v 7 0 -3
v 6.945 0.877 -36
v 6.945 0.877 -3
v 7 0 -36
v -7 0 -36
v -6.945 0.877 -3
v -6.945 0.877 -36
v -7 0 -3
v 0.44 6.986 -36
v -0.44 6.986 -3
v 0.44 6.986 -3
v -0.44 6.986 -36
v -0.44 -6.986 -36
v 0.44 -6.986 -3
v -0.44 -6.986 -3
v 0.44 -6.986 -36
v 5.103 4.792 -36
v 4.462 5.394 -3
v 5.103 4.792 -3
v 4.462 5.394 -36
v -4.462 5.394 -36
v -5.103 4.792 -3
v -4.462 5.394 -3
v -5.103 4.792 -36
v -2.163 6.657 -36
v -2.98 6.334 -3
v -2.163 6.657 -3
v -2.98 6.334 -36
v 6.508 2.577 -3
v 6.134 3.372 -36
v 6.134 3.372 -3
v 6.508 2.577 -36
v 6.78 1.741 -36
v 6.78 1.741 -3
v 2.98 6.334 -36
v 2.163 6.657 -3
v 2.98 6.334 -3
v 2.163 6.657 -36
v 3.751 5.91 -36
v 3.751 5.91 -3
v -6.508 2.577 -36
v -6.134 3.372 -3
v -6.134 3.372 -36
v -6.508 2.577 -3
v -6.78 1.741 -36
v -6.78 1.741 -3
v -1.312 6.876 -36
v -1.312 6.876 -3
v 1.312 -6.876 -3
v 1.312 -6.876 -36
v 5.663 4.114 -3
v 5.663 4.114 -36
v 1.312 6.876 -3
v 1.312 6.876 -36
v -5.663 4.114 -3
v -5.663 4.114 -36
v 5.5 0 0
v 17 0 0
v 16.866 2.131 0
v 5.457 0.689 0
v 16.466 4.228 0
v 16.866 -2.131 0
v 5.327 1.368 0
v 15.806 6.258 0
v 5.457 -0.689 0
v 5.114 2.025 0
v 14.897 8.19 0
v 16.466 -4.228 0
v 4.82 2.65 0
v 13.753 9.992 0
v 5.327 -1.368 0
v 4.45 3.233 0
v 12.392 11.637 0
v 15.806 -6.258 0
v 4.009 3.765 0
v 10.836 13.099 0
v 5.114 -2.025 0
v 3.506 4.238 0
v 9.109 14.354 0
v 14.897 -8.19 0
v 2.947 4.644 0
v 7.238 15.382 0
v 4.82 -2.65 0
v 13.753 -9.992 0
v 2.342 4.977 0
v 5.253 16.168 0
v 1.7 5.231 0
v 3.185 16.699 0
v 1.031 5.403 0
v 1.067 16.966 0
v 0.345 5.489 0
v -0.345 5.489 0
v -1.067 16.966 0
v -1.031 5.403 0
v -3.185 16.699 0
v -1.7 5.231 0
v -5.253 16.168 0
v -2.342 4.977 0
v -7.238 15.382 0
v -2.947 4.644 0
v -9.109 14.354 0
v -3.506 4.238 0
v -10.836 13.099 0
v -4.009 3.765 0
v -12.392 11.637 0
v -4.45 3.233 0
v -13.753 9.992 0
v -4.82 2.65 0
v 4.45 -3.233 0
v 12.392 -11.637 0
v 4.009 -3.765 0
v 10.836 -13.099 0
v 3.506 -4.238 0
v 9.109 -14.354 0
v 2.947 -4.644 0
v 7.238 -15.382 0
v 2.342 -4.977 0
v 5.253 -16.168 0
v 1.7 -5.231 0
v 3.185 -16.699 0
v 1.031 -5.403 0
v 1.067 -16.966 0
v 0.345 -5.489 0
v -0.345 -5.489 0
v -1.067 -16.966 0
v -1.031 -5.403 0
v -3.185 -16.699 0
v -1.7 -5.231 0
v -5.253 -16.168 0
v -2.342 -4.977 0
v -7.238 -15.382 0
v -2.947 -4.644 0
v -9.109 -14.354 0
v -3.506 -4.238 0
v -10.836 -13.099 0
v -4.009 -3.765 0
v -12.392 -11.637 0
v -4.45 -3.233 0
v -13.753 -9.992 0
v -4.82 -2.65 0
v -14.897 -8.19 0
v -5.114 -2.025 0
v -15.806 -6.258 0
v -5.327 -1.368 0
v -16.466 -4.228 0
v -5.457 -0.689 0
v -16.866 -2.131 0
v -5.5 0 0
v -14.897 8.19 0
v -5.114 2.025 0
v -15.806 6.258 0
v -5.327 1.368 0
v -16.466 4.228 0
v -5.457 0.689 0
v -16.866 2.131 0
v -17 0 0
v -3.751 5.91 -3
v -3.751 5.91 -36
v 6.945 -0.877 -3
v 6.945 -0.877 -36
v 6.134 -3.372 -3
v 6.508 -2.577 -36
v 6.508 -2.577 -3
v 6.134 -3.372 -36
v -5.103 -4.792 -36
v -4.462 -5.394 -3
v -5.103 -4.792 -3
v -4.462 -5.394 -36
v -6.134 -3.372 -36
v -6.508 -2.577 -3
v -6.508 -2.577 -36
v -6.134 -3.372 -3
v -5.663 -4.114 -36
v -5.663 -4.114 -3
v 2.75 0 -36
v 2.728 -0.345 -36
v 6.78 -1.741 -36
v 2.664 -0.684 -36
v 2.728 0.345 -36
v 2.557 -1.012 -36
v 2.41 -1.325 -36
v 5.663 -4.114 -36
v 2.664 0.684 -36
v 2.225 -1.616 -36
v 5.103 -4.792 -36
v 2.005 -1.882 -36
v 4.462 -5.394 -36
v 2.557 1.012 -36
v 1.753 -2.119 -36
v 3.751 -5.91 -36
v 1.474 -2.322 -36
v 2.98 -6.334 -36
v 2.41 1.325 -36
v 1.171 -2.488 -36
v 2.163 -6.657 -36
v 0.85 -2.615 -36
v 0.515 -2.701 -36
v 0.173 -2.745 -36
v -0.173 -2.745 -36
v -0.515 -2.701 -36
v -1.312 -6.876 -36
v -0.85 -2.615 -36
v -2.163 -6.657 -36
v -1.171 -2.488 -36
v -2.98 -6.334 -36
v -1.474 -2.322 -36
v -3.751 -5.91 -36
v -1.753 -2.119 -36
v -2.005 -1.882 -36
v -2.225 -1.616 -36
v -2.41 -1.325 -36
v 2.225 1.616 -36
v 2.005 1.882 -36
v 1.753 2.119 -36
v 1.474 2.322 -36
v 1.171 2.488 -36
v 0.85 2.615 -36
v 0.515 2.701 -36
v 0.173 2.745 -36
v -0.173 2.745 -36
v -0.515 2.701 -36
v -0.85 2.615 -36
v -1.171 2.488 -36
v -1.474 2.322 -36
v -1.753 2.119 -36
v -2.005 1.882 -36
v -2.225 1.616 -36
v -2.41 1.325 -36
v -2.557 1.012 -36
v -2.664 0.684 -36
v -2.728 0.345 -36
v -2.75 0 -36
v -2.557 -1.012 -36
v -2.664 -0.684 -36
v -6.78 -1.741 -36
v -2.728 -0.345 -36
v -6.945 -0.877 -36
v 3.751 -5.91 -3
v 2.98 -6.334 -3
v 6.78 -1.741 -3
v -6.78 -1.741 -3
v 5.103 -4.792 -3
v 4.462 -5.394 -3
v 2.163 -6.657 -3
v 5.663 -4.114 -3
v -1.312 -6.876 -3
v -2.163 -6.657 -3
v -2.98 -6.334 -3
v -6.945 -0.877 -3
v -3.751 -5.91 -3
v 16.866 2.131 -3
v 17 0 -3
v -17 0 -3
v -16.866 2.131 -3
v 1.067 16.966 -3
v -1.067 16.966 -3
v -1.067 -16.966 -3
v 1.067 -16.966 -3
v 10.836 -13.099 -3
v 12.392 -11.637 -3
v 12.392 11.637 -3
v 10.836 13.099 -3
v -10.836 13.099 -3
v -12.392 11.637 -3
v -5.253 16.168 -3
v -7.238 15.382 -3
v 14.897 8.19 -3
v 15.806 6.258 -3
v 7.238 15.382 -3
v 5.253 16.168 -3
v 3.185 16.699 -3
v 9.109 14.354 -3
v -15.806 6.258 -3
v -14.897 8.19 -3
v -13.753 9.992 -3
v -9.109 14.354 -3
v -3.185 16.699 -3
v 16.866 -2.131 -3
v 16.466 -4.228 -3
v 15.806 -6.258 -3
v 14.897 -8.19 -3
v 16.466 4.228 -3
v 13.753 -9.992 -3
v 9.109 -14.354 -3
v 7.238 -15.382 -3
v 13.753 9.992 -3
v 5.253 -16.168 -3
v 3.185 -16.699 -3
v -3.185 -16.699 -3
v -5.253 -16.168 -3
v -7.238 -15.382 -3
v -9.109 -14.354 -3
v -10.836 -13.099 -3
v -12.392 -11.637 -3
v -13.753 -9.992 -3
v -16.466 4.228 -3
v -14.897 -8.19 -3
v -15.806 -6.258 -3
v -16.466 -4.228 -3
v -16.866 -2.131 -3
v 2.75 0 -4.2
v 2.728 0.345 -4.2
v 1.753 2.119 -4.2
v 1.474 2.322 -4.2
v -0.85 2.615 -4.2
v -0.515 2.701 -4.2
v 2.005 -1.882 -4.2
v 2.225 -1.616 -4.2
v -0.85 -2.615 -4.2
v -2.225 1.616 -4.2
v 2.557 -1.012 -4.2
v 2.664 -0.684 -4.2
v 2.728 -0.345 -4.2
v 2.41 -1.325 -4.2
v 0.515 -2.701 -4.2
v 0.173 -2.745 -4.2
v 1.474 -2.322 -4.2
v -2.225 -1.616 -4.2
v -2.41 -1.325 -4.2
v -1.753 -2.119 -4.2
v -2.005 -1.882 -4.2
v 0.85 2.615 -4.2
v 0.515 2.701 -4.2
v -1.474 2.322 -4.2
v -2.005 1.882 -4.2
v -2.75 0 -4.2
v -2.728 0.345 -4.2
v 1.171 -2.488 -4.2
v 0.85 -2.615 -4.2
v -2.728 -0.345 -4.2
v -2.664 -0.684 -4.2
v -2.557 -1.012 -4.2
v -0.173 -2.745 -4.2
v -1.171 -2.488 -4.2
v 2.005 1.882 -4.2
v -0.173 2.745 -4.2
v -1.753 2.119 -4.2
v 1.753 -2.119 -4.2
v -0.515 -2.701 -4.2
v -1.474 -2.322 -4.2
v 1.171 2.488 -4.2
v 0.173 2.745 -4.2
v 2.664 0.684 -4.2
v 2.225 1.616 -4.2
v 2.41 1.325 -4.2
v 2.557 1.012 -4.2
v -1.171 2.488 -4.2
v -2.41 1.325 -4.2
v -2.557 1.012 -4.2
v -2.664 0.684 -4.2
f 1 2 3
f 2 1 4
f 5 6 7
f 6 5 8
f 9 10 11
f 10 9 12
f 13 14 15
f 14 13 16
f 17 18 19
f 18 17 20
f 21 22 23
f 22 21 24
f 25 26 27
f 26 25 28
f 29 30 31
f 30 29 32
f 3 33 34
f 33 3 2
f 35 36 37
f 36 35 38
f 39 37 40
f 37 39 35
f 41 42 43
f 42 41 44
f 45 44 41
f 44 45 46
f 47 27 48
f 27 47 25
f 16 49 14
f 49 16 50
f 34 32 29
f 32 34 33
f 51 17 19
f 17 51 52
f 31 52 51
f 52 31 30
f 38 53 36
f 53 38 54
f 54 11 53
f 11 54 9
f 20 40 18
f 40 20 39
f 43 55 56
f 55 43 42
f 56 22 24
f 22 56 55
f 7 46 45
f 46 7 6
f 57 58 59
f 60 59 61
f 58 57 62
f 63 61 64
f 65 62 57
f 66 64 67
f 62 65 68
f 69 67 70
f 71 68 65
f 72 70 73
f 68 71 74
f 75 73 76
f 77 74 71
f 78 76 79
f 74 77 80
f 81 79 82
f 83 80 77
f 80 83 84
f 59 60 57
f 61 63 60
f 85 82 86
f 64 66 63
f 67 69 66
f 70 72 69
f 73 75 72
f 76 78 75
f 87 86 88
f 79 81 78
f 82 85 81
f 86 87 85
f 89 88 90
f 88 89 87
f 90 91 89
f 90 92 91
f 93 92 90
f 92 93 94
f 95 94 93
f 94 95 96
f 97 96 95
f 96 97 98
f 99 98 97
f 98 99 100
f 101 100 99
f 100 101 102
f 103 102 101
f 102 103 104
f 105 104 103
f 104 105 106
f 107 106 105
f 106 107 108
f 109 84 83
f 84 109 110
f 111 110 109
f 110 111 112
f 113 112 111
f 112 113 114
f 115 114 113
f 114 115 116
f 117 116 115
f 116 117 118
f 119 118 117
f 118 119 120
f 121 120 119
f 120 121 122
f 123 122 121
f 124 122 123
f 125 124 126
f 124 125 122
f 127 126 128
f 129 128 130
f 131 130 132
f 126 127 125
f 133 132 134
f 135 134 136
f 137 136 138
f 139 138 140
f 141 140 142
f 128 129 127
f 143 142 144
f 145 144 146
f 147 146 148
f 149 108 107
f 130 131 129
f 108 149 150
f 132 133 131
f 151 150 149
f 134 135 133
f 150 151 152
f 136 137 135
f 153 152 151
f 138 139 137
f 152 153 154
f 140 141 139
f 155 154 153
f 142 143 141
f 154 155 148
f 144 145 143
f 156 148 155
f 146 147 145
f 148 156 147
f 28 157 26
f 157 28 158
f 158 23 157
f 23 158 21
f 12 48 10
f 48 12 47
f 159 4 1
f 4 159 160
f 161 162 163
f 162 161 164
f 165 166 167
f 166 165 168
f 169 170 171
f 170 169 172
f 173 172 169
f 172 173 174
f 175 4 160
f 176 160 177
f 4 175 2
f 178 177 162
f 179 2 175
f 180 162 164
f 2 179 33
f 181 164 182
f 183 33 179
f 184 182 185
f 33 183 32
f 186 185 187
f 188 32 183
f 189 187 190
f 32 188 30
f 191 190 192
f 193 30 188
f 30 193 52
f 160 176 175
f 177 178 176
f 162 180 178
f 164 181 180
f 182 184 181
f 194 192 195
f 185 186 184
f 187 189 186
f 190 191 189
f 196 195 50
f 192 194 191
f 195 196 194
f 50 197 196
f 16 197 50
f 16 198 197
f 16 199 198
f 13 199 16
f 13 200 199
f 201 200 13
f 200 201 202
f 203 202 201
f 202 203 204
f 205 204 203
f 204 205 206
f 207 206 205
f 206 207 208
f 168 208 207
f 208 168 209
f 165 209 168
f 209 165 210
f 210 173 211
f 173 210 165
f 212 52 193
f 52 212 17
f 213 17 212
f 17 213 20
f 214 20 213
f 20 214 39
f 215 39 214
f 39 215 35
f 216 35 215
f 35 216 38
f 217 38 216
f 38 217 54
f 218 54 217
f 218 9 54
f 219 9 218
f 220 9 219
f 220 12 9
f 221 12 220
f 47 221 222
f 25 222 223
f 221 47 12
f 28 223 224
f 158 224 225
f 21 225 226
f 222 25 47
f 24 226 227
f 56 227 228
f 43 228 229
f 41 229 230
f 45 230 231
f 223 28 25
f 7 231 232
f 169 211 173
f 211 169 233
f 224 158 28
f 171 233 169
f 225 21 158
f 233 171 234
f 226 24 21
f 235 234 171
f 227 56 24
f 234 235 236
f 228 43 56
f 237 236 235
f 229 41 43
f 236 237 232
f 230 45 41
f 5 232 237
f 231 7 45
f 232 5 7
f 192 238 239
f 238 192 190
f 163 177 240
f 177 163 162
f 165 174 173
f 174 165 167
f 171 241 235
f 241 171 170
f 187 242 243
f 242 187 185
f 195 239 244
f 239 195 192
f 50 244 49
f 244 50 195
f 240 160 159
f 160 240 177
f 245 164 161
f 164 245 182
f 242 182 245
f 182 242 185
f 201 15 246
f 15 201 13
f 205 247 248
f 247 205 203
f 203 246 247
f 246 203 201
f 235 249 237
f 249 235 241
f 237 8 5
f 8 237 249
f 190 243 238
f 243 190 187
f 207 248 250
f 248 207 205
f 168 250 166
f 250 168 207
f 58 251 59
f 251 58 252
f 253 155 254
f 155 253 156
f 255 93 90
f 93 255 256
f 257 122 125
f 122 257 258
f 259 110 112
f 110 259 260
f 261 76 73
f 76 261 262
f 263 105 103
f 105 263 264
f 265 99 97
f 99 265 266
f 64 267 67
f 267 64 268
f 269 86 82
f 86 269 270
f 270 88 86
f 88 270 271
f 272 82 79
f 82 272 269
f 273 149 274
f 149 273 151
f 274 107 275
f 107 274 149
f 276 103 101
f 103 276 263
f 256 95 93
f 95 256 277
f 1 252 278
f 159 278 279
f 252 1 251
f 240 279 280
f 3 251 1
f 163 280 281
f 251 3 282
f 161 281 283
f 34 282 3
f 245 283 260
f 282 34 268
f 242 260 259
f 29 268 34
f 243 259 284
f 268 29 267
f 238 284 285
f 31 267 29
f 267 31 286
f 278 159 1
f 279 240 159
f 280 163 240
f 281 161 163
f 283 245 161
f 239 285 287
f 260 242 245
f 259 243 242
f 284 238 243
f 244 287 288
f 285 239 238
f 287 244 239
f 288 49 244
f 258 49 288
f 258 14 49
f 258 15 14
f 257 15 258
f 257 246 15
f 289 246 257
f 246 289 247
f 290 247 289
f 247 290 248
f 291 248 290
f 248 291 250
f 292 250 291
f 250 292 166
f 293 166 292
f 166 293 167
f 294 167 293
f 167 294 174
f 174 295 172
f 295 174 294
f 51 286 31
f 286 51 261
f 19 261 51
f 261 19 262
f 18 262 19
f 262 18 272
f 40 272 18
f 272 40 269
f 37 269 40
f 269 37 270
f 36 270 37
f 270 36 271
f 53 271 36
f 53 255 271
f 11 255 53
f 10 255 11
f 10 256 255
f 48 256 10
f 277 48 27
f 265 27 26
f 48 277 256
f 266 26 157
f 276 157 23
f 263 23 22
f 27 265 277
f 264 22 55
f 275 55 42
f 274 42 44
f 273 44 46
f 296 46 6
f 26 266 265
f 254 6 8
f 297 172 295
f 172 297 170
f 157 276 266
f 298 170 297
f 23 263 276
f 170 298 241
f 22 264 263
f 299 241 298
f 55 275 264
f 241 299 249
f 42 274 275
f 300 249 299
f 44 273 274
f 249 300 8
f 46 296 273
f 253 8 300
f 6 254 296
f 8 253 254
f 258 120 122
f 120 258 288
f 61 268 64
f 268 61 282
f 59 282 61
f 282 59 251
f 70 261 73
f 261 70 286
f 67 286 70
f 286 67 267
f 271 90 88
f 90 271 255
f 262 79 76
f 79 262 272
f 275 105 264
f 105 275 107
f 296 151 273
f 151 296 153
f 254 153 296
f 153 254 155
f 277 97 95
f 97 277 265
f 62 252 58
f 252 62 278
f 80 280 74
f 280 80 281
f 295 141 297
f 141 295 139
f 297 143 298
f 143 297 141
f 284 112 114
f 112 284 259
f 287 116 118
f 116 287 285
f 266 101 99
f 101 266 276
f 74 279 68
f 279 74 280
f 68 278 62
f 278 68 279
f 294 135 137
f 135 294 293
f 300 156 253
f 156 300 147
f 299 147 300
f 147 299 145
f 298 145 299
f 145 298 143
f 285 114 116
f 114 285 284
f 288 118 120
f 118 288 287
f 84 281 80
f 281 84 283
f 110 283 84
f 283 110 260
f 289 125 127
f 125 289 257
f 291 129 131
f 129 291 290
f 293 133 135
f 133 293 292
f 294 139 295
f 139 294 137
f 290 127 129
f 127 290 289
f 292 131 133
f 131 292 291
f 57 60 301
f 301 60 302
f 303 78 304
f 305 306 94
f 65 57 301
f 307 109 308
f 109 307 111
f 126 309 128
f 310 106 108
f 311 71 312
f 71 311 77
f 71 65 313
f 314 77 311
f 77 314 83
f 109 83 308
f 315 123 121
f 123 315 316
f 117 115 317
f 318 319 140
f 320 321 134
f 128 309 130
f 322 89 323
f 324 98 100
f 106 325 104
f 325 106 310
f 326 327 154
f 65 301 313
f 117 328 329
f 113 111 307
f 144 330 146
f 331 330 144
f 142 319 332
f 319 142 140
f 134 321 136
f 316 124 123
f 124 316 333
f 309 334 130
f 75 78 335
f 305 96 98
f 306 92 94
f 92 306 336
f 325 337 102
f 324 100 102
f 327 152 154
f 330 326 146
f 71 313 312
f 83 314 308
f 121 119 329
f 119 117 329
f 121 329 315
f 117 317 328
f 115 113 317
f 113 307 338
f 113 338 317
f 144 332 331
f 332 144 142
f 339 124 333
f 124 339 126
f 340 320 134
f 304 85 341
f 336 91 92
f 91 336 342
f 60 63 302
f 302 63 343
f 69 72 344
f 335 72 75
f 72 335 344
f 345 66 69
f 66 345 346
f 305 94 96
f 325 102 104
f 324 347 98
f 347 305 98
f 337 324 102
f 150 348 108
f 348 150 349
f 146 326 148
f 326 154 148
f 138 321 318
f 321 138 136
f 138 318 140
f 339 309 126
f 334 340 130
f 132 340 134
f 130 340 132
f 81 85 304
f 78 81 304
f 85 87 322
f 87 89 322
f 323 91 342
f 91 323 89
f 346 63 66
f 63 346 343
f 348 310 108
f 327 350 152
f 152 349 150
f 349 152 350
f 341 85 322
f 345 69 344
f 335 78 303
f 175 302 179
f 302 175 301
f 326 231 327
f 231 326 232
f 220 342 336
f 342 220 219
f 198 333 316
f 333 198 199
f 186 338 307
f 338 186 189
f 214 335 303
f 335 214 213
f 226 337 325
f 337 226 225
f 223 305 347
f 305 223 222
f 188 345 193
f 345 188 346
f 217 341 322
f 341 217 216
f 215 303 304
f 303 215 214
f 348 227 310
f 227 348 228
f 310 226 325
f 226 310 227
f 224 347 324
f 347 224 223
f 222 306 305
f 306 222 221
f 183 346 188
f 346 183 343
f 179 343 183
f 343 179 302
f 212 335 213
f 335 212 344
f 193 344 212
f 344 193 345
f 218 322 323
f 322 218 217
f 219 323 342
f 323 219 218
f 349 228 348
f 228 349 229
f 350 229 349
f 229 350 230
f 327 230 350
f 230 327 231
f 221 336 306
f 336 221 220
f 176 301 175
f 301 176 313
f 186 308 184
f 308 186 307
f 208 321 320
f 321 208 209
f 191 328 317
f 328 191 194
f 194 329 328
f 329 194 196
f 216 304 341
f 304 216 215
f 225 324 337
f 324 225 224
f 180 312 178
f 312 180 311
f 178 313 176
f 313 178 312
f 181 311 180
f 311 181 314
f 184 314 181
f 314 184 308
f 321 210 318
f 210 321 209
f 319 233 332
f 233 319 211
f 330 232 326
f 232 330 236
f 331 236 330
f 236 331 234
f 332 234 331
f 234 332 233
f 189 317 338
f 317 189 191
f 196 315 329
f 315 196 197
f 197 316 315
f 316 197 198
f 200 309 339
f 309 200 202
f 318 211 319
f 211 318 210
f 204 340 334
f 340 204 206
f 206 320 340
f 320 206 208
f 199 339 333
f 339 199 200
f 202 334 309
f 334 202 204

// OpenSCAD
$fn = 50;


difference() {
	union() {
		translate(v = [0, 0, -36.0000000000]) {
			cylinder(h = 36, r = 7.0000000000);
		}
		translate(v = [0, 0, -3.0000000000]) {
			cylinder(h = 3, r = 17.0000000000);
		}
	}
	union() {
		translate(v = [0, 0, 0]) {
			rotate(a = [0, 0, 0]) {
				difference() {
					union() {
						#translate(v = [0, 0, -36.0000000000]) {
							cylinder(h = 36, r = 2.2500000000);
						}
						#translate(v = [0, 0, -4.2000000000]) {
							cylinder(h = 4.2000000000, r1 = 2.7500000000, r2 = 5.5000000000);
						}
						#translate(v = [0, 0, -36.0000000000]) {
							cylinder(h = 36, r = 2.7500000000);
						}
						#translate(v = [0, 0, -36.0000000000]) {
							cylinder(h = 36, r = 2.2500000000);
						}
					}
					union();
				}
			}
		}
	}
}
